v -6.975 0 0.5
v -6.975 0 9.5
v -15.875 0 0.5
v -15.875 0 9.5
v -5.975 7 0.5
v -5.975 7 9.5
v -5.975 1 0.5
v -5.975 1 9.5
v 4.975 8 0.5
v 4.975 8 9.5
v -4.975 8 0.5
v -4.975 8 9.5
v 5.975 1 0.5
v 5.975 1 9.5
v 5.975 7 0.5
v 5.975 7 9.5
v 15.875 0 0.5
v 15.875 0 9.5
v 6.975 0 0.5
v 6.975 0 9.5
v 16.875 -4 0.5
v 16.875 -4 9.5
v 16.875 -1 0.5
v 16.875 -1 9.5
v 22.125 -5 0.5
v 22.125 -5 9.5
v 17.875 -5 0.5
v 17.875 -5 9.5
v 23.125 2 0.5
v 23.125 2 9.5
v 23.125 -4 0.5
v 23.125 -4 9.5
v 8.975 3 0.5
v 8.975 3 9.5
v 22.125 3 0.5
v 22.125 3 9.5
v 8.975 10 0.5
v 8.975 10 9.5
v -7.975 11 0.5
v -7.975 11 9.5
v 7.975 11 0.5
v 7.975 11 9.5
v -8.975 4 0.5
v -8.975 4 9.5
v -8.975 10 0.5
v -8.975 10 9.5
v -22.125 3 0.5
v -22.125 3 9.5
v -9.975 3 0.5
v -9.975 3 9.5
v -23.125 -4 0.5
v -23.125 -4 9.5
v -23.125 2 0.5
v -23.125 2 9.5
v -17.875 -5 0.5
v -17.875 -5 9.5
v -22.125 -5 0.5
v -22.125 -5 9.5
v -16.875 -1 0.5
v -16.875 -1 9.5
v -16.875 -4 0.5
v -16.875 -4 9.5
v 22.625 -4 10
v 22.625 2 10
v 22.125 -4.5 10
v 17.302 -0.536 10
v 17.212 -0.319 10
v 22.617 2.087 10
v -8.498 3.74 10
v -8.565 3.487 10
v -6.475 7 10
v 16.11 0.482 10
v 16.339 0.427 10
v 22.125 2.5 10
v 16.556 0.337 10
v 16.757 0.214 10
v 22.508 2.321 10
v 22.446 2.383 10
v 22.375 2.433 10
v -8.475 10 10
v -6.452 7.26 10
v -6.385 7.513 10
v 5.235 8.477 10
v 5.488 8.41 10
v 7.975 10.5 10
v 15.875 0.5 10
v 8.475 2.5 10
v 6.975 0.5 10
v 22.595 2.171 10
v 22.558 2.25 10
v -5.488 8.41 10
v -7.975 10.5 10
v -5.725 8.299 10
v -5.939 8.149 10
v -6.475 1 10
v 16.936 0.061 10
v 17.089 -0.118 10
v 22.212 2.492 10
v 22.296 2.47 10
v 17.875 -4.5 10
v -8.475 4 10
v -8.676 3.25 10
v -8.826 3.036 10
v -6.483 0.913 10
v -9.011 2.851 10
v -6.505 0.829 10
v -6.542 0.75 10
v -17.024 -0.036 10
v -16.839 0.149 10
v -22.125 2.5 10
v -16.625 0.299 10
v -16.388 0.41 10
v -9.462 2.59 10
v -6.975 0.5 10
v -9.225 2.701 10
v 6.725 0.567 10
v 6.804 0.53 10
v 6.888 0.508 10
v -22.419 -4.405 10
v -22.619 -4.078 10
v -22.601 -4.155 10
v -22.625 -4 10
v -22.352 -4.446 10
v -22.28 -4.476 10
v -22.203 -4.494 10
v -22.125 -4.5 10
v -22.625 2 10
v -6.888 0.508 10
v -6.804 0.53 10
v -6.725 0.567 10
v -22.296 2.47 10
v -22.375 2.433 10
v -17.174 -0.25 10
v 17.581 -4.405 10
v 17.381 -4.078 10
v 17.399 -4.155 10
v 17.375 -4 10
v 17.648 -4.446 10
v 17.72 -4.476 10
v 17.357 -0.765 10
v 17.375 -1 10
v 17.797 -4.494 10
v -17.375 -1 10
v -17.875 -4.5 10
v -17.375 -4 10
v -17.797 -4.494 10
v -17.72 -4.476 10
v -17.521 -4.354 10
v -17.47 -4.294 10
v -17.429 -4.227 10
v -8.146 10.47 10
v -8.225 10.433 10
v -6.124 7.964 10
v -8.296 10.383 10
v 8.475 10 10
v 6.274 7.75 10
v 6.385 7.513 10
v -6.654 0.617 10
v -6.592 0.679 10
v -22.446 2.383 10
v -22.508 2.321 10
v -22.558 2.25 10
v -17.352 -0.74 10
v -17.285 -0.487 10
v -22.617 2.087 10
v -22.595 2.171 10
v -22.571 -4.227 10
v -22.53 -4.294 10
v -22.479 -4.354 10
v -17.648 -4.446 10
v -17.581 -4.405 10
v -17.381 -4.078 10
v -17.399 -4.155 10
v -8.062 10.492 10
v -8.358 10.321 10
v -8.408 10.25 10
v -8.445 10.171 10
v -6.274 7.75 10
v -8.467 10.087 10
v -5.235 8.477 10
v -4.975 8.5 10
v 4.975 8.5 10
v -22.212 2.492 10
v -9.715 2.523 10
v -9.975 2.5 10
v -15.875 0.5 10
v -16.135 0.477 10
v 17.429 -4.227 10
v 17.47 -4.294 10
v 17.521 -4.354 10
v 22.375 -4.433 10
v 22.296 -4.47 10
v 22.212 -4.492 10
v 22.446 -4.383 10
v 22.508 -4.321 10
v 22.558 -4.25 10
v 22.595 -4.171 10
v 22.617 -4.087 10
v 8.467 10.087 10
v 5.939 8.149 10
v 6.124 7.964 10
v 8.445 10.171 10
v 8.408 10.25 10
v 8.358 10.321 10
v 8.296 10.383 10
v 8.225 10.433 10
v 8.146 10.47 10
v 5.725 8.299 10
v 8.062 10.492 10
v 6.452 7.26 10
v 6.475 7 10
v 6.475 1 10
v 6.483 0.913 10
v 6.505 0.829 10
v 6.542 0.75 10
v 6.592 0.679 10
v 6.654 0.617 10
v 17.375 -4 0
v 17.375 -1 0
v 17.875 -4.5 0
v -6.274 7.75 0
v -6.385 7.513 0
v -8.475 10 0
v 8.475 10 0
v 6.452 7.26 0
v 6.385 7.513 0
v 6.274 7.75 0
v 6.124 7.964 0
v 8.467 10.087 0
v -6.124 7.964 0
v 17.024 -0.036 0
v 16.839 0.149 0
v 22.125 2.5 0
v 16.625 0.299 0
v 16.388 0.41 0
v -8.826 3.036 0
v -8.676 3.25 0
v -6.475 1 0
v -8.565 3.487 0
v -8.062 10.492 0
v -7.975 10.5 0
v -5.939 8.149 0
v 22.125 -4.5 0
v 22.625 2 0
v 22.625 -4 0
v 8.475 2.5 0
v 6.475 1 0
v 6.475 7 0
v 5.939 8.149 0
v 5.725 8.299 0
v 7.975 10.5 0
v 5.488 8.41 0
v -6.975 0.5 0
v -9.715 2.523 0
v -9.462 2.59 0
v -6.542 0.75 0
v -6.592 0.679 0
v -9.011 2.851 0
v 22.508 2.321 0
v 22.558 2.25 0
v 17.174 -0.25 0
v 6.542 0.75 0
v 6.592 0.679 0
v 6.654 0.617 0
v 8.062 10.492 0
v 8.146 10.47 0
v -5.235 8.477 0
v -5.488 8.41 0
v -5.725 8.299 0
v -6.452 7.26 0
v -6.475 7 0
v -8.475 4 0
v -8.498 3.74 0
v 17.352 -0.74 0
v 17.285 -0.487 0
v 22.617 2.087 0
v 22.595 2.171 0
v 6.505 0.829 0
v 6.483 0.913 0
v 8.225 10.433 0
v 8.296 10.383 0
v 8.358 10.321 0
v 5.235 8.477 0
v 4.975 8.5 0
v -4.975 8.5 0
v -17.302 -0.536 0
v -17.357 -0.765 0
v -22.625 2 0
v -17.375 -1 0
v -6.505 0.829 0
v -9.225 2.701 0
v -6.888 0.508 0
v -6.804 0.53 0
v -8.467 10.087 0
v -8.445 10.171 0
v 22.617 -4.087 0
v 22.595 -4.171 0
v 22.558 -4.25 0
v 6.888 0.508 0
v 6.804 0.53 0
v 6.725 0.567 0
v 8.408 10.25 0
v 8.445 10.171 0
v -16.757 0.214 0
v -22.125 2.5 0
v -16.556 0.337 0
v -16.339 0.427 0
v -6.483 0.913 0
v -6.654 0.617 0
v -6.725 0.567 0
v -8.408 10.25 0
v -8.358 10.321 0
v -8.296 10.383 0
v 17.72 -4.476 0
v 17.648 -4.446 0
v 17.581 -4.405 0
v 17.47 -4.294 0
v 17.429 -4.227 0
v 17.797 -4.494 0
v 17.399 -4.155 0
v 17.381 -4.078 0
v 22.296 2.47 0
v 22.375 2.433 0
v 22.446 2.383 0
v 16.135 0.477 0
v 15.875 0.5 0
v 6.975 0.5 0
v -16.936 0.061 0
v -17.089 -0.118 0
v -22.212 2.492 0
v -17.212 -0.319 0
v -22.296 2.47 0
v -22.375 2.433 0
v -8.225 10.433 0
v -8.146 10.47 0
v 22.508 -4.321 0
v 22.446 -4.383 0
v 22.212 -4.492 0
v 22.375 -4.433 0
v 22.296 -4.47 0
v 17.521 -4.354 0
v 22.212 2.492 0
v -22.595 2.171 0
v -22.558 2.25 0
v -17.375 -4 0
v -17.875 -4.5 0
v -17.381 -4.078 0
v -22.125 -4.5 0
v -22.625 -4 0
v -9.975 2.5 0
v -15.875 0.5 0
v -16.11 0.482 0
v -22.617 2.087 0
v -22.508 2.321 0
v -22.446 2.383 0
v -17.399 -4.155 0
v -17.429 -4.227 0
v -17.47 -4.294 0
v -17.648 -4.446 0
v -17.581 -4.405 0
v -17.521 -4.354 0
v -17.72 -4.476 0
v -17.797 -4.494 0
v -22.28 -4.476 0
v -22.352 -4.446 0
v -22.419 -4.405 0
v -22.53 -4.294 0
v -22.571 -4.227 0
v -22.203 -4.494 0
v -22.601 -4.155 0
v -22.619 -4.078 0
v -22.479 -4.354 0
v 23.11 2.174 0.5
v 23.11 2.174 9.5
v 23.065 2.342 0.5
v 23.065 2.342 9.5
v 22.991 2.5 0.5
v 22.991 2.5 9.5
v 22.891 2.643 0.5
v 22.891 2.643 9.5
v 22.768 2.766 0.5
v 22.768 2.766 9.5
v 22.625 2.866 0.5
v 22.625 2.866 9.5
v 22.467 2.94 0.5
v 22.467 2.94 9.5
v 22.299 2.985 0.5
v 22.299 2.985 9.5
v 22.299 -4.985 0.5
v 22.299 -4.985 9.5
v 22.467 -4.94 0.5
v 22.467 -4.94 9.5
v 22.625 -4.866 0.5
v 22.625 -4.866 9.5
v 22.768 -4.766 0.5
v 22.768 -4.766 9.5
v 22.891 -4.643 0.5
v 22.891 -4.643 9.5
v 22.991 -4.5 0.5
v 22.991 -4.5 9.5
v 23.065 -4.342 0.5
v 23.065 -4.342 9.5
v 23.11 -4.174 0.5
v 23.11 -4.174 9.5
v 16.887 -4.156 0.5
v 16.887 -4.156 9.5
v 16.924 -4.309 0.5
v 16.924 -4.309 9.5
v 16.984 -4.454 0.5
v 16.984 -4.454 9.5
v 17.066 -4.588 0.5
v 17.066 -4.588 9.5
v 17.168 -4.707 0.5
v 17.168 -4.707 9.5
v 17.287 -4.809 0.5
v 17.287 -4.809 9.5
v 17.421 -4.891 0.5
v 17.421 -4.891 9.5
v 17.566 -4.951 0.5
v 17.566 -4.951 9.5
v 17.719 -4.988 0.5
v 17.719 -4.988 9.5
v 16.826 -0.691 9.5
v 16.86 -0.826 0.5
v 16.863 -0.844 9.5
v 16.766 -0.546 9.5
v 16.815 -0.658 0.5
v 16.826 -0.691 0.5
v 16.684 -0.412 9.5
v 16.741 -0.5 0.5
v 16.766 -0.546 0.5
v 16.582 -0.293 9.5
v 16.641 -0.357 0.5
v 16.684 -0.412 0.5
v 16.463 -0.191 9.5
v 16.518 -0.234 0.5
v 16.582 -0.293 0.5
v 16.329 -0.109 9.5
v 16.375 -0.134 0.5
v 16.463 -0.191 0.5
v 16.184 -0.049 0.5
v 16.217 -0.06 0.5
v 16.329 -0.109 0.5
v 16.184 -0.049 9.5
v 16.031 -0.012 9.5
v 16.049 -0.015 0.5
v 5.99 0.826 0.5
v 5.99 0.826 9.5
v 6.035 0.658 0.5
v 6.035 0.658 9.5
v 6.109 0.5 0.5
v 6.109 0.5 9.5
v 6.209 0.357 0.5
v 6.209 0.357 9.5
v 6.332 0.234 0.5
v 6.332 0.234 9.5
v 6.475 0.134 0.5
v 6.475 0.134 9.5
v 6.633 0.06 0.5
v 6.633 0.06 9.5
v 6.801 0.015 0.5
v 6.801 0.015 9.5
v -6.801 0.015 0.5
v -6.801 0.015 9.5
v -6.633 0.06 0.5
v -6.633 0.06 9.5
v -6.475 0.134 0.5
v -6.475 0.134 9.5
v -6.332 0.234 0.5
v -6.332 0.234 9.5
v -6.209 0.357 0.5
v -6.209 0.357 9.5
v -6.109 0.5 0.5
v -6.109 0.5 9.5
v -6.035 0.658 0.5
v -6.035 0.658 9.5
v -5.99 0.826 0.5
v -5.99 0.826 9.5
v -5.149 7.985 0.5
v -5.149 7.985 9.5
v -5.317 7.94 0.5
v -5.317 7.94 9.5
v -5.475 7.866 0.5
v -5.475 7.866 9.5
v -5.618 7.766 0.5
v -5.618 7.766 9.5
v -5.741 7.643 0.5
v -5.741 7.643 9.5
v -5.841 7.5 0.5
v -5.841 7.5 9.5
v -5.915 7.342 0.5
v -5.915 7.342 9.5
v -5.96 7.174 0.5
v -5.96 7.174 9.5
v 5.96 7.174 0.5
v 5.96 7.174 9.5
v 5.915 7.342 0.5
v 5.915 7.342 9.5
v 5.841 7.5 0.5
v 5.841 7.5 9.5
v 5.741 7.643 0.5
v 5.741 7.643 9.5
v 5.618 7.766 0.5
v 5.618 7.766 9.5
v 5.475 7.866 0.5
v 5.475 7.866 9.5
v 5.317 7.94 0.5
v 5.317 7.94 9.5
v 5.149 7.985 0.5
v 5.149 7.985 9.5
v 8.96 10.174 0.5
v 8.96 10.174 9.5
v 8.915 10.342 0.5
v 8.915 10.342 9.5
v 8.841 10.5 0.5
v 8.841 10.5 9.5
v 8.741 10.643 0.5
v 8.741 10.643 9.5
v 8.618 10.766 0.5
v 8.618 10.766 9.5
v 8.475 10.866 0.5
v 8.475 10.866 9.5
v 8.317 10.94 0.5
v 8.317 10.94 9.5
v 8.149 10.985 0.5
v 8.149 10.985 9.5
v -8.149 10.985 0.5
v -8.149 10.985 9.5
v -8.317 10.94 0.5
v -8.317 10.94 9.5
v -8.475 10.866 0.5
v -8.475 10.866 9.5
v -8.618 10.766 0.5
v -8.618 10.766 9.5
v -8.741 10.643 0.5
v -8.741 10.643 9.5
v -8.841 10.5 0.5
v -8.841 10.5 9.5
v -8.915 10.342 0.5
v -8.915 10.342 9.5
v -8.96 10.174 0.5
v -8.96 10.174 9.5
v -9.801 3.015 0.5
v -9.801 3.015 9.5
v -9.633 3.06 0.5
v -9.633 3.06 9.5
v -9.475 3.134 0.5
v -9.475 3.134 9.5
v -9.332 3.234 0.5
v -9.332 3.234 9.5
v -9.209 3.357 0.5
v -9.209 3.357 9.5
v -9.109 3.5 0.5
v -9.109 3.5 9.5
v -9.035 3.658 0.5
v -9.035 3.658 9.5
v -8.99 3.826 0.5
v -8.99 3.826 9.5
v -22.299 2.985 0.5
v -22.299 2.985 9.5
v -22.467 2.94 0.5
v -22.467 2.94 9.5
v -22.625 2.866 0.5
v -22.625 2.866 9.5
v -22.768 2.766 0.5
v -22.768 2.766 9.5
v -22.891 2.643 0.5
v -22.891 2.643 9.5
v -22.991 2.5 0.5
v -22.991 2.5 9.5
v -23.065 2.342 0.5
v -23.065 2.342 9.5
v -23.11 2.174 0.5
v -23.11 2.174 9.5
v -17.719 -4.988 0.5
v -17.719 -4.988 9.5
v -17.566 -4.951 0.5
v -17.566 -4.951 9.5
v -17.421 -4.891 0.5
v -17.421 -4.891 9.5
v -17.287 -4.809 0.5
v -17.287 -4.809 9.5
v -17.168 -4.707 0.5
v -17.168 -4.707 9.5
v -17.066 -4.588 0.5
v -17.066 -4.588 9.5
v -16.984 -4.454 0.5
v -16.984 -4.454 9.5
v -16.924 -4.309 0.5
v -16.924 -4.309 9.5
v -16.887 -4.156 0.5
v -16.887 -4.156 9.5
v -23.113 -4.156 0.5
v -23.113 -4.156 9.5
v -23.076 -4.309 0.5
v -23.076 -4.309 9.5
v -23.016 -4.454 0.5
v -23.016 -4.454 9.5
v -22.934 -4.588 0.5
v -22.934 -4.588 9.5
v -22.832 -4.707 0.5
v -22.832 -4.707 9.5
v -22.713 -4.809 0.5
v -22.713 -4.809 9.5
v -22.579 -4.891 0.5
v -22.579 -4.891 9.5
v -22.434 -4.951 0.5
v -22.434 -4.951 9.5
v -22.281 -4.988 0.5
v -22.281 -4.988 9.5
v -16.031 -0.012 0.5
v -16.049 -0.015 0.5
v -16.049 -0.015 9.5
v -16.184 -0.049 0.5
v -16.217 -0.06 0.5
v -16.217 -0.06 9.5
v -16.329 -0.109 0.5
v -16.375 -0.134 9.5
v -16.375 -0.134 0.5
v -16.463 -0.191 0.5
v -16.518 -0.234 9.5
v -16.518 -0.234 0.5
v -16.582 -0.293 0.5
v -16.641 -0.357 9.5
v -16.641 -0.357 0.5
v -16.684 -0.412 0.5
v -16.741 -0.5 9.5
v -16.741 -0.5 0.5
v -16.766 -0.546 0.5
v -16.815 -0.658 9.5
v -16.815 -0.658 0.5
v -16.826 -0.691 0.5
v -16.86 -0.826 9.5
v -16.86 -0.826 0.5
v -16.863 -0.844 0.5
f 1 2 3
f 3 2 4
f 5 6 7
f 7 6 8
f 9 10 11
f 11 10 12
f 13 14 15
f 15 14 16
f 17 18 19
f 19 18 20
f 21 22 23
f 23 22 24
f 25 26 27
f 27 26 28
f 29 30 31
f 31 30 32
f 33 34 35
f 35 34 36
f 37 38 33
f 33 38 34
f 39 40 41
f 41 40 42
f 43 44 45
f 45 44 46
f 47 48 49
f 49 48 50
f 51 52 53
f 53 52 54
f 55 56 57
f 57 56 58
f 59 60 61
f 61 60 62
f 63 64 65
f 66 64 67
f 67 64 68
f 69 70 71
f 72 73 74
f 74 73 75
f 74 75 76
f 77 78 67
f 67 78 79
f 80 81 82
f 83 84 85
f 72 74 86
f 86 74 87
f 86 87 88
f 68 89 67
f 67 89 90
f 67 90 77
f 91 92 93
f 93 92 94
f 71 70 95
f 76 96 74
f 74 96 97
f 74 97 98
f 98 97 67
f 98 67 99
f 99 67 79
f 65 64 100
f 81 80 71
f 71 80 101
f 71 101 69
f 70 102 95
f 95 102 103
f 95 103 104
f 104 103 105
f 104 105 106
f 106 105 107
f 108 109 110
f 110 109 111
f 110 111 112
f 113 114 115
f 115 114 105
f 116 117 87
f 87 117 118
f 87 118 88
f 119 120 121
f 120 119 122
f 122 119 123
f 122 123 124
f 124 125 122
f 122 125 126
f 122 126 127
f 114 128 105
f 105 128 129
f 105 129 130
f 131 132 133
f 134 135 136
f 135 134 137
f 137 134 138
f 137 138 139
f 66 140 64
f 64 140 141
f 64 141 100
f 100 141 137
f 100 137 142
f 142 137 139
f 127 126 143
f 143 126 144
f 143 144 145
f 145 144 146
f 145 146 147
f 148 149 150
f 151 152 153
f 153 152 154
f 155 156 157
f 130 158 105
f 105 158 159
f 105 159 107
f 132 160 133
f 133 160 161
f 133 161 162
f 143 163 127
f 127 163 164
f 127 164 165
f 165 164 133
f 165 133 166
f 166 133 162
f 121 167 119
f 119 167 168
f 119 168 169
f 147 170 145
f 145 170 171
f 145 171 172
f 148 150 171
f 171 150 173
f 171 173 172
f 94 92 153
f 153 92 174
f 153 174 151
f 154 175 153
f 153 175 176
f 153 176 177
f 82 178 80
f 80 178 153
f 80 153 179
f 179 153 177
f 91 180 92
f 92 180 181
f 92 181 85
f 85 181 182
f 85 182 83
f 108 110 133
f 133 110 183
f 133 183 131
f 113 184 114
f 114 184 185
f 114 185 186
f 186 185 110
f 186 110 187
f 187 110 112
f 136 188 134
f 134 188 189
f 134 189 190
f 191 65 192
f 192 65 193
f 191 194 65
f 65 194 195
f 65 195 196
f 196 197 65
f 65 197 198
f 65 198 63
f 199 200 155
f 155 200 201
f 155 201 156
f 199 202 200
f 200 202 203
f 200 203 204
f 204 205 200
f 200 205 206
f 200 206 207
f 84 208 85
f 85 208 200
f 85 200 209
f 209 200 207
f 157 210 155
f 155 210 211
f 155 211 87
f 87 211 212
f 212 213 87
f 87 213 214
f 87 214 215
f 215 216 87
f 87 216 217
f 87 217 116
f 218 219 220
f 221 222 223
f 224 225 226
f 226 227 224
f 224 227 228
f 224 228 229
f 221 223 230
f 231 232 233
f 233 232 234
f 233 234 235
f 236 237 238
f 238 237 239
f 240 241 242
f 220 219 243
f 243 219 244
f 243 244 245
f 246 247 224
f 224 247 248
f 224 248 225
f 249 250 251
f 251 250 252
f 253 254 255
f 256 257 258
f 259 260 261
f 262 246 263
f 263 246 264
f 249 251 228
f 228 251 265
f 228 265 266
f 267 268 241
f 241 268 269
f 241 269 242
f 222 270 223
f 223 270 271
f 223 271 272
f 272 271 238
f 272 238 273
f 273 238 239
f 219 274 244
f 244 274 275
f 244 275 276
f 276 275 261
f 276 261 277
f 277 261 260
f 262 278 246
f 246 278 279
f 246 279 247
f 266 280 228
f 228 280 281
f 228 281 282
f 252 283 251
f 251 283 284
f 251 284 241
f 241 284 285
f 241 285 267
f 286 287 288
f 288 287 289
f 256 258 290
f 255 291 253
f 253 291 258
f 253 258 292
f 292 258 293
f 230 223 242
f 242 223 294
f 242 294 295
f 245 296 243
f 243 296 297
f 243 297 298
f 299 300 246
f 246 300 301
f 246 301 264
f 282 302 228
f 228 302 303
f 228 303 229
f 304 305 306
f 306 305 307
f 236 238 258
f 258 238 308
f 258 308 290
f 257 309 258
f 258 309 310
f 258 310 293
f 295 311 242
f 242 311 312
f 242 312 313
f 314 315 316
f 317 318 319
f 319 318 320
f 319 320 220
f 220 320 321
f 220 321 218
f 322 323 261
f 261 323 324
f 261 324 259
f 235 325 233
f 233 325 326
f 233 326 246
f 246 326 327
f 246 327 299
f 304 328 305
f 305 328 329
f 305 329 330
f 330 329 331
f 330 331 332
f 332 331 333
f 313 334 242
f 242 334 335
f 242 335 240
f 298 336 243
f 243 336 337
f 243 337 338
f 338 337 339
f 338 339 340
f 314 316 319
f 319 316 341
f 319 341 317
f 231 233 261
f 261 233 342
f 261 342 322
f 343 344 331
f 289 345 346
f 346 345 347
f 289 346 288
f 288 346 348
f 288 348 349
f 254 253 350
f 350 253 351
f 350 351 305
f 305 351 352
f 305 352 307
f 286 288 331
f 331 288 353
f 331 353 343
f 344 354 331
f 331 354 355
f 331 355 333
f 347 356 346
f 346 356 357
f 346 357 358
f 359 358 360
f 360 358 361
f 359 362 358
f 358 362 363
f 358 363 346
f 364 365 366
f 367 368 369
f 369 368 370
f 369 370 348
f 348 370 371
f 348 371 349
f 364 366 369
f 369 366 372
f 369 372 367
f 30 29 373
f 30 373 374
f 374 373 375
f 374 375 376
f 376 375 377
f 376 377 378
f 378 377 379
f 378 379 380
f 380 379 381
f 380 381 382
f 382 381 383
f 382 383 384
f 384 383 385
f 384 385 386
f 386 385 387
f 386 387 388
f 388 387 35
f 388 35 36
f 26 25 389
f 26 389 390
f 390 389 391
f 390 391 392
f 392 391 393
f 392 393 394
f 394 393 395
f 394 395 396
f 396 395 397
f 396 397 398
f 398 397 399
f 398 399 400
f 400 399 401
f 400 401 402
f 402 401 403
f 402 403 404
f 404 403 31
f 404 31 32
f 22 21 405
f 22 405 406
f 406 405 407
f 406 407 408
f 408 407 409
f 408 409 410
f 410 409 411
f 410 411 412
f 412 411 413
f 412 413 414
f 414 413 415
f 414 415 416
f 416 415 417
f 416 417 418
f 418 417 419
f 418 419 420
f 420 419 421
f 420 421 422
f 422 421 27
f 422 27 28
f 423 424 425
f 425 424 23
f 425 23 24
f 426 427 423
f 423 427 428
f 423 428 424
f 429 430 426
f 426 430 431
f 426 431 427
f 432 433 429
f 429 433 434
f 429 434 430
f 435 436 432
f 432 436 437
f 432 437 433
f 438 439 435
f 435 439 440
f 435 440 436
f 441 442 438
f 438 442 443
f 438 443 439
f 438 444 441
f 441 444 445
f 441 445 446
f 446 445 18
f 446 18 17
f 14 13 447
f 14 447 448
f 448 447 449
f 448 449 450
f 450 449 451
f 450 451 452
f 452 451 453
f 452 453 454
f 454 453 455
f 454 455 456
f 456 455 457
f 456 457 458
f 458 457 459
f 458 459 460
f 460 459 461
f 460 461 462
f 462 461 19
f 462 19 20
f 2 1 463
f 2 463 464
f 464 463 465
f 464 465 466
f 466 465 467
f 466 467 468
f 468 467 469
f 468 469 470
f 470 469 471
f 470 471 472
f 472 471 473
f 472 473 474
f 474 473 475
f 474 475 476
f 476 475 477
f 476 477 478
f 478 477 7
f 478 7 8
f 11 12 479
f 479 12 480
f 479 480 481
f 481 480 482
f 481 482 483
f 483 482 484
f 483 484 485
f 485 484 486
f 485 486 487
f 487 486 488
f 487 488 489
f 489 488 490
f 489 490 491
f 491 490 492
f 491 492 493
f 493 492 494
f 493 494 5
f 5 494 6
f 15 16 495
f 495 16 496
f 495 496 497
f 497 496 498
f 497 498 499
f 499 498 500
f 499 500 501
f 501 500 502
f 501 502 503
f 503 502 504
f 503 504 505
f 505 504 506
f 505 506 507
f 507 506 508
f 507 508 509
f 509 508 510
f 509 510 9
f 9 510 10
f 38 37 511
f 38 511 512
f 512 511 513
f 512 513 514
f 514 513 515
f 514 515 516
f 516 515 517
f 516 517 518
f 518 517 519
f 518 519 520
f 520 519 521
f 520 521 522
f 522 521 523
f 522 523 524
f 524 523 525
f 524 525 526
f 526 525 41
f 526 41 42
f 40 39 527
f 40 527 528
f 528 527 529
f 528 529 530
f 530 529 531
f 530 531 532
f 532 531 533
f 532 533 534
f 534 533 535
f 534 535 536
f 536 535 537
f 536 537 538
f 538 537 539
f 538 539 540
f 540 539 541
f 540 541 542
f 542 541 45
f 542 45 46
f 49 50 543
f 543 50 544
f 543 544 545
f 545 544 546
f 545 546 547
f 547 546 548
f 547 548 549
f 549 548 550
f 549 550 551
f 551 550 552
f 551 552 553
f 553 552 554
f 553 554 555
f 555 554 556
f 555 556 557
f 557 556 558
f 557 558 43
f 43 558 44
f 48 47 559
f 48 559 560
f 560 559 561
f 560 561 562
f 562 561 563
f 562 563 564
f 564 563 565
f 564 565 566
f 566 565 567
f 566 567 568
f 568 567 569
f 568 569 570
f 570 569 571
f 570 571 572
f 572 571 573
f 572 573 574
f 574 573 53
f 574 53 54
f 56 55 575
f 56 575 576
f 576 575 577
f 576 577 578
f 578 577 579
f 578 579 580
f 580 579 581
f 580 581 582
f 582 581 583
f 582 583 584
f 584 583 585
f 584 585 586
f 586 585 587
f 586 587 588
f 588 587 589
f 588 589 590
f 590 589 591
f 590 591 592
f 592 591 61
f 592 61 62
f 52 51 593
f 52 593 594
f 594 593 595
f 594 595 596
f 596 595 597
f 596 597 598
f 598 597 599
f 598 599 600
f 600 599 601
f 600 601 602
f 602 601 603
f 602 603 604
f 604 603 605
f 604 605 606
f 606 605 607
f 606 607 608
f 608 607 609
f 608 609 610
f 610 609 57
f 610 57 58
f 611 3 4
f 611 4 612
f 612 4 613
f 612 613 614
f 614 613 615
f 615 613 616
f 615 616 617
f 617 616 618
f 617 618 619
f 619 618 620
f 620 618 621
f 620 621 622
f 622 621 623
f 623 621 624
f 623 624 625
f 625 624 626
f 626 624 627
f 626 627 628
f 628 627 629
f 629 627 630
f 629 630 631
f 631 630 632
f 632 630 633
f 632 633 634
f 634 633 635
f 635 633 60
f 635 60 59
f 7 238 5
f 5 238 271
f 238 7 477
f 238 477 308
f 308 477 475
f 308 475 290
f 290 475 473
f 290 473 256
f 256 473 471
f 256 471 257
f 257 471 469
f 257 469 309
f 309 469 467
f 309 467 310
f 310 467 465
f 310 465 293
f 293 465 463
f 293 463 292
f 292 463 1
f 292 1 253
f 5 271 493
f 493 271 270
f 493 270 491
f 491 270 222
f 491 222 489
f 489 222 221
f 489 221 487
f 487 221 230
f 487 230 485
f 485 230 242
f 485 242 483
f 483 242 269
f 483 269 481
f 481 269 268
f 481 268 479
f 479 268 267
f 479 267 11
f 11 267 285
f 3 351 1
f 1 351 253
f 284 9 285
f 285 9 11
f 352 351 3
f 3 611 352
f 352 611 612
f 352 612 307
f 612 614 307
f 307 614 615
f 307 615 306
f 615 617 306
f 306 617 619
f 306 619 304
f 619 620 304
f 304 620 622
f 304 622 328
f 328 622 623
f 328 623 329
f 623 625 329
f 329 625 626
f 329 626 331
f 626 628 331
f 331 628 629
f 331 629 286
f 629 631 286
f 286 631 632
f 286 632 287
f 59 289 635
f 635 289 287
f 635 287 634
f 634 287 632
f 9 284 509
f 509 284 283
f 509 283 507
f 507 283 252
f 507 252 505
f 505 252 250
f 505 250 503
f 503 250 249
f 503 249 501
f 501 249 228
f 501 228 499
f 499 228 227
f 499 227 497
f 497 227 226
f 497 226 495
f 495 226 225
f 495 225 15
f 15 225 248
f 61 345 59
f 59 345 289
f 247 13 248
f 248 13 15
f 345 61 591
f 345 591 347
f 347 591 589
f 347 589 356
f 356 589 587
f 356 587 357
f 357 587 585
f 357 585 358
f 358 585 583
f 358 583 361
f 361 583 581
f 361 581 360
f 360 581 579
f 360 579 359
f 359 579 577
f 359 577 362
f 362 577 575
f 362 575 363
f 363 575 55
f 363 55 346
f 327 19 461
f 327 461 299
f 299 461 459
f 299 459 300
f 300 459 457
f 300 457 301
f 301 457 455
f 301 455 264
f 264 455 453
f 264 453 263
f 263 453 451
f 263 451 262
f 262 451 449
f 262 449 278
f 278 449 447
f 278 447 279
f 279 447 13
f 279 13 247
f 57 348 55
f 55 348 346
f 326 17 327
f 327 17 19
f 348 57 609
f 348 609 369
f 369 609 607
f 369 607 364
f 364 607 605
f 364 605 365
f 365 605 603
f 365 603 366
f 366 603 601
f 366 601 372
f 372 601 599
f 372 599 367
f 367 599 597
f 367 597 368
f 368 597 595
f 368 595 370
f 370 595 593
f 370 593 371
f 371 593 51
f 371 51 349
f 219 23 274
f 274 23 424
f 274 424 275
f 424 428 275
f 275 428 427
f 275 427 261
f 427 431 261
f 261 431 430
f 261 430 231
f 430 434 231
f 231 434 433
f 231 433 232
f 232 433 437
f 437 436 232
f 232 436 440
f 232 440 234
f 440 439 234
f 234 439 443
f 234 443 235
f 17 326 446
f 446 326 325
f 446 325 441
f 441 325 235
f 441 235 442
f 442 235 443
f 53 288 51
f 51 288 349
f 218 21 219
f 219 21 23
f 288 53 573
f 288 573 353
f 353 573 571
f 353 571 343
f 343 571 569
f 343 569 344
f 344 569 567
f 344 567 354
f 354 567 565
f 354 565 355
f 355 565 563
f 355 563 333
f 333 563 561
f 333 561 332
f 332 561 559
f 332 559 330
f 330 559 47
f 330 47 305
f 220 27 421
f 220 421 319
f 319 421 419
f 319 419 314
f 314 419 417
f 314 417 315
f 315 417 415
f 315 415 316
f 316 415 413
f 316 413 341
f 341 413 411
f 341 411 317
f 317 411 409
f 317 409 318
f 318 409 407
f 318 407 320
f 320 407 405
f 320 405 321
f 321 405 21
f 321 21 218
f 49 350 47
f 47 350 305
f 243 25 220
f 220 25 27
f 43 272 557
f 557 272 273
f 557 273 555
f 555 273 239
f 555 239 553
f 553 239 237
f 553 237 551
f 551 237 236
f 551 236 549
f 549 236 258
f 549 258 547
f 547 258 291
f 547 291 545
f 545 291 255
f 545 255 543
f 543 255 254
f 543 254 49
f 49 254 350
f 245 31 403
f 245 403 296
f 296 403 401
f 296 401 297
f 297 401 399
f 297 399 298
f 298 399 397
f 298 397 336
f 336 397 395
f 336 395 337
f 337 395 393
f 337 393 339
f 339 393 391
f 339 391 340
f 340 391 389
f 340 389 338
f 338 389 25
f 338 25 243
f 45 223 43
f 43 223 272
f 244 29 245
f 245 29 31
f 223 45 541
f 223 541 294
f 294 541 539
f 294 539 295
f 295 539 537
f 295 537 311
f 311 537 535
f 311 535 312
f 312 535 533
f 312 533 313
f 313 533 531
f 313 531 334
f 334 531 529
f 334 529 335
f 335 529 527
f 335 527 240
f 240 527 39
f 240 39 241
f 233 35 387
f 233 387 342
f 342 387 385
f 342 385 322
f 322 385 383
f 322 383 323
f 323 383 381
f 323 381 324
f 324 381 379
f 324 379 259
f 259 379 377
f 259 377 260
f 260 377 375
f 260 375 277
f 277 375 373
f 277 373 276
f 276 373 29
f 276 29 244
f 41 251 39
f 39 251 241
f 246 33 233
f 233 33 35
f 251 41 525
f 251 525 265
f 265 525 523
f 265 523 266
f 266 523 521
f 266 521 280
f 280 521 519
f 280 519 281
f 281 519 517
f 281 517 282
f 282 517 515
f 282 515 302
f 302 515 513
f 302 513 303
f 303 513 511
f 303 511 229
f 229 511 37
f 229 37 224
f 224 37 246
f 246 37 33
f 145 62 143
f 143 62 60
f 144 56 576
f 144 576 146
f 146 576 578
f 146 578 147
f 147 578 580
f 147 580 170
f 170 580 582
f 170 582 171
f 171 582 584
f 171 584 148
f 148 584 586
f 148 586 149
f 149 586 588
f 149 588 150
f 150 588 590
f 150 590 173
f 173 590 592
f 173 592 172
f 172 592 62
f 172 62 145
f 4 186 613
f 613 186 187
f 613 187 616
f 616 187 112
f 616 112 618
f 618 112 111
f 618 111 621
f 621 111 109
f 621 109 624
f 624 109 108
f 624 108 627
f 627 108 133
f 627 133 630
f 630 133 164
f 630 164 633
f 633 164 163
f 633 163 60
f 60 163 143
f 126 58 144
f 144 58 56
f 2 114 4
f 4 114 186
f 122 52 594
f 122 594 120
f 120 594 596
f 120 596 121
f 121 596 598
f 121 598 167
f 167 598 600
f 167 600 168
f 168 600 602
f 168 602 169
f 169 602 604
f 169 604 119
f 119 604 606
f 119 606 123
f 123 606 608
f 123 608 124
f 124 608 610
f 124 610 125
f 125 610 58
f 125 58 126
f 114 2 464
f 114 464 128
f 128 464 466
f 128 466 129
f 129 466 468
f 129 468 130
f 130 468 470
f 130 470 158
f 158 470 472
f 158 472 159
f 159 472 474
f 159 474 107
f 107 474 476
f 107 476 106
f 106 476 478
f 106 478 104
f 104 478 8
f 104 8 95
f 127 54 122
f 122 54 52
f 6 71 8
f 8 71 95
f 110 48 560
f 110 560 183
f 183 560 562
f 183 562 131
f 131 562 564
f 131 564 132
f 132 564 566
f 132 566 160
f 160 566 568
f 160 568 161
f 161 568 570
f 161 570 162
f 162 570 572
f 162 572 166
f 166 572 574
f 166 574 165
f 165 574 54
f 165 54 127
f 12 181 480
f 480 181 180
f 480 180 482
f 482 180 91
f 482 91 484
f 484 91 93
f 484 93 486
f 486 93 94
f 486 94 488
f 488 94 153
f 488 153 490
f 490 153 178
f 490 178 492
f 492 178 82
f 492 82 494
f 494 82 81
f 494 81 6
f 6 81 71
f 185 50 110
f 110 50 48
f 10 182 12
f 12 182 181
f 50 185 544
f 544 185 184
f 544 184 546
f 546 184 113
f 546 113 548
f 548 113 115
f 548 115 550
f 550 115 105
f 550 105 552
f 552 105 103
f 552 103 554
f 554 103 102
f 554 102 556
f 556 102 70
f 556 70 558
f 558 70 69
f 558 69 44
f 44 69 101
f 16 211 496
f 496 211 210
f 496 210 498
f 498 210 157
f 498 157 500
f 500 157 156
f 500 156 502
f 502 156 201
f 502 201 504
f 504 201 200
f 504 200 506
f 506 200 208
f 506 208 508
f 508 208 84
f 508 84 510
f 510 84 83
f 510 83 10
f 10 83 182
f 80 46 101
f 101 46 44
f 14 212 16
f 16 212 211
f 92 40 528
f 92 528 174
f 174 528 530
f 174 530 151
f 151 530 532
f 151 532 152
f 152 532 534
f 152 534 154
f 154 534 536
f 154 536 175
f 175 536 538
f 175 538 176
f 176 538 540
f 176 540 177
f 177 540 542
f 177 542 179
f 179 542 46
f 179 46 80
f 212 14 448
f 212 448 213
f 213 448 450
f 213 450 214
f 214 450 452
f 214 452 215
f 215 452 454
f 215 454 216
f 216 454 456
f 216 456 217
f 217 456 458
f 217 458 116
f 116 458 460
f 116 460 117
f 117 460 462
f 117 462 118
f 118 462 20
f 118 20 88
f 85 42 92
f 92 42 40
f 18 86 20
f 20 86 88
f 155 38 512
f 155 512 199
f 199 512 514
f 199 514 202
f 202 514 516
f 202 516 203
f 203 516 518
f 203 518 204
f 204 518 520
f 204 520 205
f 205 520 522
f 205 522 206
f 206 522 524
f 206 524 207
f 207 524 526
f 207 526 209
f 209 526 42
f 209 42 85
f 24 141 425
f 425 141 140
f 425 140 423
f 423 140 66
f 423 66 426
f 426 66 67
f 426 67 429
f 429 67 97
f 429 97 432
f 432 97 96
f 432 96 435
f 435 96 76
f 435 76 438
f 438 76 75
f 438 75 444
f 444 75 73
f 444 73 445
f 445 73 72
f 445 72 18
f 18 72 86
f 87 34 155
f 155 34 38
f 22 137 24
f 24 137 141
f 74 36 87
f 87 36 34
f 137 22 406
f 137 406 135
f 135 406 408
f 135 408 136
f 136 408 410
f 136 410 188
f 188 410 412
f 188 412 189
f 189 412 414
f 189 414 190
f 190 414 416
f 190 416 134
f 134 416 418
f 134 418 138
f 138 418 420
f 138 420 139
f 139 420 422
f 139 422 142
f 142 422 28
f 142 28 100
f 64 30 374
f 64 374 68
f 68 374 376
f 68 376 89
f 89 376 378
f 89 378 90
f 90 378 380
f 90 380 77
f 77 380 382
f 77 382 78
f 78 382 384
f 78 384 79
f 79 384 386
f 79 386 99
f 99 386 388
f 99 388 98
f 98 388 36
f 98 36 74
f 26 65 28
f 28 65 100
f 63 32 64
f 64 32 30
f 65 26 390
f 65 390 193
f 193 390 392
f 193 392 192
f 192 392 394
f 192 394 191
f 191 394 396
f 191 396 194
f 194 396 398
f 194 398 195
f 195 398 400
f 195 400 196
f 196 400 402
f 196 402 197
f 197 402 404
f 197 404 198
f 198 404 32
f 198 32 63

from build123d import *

# Parameters (mm, degrees)
BOSS_EXTRUDE1_DEPTH = 10
FILLET1_R           = 1
CHAMFER1_SIZE       = 0.5


with BuildPart() as part:
    # Sketch1 → Boss-Extrude1 (new body)
    with BuildSketch(Plane.XY):
        Polygon((-5.975, 0), (-5.975, 8), (5.975, 8), (5.975, 0), (16.875, 0), (16.875, -5), (23.125, -5), (23.125, 0), (23.125, 3), (8.975, 3), (8.975, 11), (-8.975, 11), (-8.975, 3), (-23.125, 3), (-23.125, 0), (-23.125, -5), (-16.875, -5), (-16.875, 0), align=None)
    extrude(amount=BOSS_EXTRUDE1_DEPTH)

    # Fillet1
    fillet1_edges = [part.edges().sort_by_distance(p)[0] for p in [
        (-16.875, 0, 5),
        (-16.875, -5, 5),
        (-23.125, -5, 5),
        (-23.125, 3, 5),
        (-8.975, 3, 5),
        (-8.975, 11, 5),
        (8.975, 11, 5),
        (23.125, 3, 5),
        (23.125, -5, 5),
        (16.875, -5, 5),
        (16.875, 0, 5),
        (5.975, 0, 5),
        (5.975, 8, 5),
        (-5.975, 8, 5),
        (-5.975, 0, 5),
    ]]
    fillet(fillet1_edges, radius=FILLET1_R)

    # Chamfer1
    chamfer1_edges = [part.edges().sort_by_distance(p)[0] for p in [
        (16.582106781, -0.292893219, 0),
        (16.582106781, -0.292893219, 10),
        (-5.682106781, 7.707106781, 0),
        (-5.682106781, 7.707106781, 10),
        (5.682106781, 7.707106781, 0),
        (5.682106781, 7.707106781, 10),
        (-9.267893219, 3.292893219, 0),
        (-9.267893219, 3.292893219, 10),
        (-16.582106781, -0.292893219, 0),
        (-16.582106781, -0.292893219, 10),
        (8.975, 6.5, 0),
        (8.975, 6.5, 10),
        (15.55, 3, 0),
        (15.55, 3, 10),
        (-11.425, 0, 0),
        (-16.875, -2.5, 0),
        (-20, -5, 0),
        (-23.125, -1, 0),
        (-16.05, 3, 0),
        (-8.975, 7, 0),
        (0, 11, 0),
        (23.125, -1, 0),
        (20, -5, 0),
        (16.875, -2.5, 0),
        (11.425, 0, 0),
        (5.975, 4, 0),
        (0, 8, 0),
        (-5.975, 4, 0),
        (-22.832106781, -4.707106781, 0),
        (-17.167893219, -4.707106781, 0),
        (-22.832106781, 2.707106781, 0),
        (-8.682106781, 10.707106781, 0),
        (8.682106781, 10.707106781, 0),
        (-6.267893219, 0.292893219, 0),
        (6.267893219, 0.292893219, 0),
        (17.167893219, -4.707106781, 0),
        (22.832106781, -4.707106781, 0),
        (22.832106781, 2.707106781, 0),
        (23.125, -1, 10),
        (-11.425, 0, 10),
        (-5.975, 4, 10),
        (0, 8, 10),
        (5.975, 4, 10),
        (11.425, 0, 10),
        (16.875, -2.5, 10),
        (20, -5, 10),
        (0, 11, 10),
        (-8.975, 7, 10),
        (-16.05, 3, 10),
        (-23.125, -1, 10),
        (-20, -5, 10),
        (-16.875, -2.5, 10),
        (-22.832106781, -4.707106781, 10),
        (-17.167893219, -4.707106781, 10),
        (-22.832106781, 2.707106781, 10),
        (-8.682106781, 10.707106781, 10),
        (8.682106781, 10.707106781, 10),
        (-6.267893219, 0.292893219, 10),
        (6.267893219, 0.292893219, 10),
        (17.167893219, -4.707106781, 10),
        (22.832106781, -4.707106781, 10),
        (22.832106781, 2.707106781, 10),
    ]]
    chamfer(chamfer1_edges, length=CHAMFER1_SIZE)


solid = part.part
